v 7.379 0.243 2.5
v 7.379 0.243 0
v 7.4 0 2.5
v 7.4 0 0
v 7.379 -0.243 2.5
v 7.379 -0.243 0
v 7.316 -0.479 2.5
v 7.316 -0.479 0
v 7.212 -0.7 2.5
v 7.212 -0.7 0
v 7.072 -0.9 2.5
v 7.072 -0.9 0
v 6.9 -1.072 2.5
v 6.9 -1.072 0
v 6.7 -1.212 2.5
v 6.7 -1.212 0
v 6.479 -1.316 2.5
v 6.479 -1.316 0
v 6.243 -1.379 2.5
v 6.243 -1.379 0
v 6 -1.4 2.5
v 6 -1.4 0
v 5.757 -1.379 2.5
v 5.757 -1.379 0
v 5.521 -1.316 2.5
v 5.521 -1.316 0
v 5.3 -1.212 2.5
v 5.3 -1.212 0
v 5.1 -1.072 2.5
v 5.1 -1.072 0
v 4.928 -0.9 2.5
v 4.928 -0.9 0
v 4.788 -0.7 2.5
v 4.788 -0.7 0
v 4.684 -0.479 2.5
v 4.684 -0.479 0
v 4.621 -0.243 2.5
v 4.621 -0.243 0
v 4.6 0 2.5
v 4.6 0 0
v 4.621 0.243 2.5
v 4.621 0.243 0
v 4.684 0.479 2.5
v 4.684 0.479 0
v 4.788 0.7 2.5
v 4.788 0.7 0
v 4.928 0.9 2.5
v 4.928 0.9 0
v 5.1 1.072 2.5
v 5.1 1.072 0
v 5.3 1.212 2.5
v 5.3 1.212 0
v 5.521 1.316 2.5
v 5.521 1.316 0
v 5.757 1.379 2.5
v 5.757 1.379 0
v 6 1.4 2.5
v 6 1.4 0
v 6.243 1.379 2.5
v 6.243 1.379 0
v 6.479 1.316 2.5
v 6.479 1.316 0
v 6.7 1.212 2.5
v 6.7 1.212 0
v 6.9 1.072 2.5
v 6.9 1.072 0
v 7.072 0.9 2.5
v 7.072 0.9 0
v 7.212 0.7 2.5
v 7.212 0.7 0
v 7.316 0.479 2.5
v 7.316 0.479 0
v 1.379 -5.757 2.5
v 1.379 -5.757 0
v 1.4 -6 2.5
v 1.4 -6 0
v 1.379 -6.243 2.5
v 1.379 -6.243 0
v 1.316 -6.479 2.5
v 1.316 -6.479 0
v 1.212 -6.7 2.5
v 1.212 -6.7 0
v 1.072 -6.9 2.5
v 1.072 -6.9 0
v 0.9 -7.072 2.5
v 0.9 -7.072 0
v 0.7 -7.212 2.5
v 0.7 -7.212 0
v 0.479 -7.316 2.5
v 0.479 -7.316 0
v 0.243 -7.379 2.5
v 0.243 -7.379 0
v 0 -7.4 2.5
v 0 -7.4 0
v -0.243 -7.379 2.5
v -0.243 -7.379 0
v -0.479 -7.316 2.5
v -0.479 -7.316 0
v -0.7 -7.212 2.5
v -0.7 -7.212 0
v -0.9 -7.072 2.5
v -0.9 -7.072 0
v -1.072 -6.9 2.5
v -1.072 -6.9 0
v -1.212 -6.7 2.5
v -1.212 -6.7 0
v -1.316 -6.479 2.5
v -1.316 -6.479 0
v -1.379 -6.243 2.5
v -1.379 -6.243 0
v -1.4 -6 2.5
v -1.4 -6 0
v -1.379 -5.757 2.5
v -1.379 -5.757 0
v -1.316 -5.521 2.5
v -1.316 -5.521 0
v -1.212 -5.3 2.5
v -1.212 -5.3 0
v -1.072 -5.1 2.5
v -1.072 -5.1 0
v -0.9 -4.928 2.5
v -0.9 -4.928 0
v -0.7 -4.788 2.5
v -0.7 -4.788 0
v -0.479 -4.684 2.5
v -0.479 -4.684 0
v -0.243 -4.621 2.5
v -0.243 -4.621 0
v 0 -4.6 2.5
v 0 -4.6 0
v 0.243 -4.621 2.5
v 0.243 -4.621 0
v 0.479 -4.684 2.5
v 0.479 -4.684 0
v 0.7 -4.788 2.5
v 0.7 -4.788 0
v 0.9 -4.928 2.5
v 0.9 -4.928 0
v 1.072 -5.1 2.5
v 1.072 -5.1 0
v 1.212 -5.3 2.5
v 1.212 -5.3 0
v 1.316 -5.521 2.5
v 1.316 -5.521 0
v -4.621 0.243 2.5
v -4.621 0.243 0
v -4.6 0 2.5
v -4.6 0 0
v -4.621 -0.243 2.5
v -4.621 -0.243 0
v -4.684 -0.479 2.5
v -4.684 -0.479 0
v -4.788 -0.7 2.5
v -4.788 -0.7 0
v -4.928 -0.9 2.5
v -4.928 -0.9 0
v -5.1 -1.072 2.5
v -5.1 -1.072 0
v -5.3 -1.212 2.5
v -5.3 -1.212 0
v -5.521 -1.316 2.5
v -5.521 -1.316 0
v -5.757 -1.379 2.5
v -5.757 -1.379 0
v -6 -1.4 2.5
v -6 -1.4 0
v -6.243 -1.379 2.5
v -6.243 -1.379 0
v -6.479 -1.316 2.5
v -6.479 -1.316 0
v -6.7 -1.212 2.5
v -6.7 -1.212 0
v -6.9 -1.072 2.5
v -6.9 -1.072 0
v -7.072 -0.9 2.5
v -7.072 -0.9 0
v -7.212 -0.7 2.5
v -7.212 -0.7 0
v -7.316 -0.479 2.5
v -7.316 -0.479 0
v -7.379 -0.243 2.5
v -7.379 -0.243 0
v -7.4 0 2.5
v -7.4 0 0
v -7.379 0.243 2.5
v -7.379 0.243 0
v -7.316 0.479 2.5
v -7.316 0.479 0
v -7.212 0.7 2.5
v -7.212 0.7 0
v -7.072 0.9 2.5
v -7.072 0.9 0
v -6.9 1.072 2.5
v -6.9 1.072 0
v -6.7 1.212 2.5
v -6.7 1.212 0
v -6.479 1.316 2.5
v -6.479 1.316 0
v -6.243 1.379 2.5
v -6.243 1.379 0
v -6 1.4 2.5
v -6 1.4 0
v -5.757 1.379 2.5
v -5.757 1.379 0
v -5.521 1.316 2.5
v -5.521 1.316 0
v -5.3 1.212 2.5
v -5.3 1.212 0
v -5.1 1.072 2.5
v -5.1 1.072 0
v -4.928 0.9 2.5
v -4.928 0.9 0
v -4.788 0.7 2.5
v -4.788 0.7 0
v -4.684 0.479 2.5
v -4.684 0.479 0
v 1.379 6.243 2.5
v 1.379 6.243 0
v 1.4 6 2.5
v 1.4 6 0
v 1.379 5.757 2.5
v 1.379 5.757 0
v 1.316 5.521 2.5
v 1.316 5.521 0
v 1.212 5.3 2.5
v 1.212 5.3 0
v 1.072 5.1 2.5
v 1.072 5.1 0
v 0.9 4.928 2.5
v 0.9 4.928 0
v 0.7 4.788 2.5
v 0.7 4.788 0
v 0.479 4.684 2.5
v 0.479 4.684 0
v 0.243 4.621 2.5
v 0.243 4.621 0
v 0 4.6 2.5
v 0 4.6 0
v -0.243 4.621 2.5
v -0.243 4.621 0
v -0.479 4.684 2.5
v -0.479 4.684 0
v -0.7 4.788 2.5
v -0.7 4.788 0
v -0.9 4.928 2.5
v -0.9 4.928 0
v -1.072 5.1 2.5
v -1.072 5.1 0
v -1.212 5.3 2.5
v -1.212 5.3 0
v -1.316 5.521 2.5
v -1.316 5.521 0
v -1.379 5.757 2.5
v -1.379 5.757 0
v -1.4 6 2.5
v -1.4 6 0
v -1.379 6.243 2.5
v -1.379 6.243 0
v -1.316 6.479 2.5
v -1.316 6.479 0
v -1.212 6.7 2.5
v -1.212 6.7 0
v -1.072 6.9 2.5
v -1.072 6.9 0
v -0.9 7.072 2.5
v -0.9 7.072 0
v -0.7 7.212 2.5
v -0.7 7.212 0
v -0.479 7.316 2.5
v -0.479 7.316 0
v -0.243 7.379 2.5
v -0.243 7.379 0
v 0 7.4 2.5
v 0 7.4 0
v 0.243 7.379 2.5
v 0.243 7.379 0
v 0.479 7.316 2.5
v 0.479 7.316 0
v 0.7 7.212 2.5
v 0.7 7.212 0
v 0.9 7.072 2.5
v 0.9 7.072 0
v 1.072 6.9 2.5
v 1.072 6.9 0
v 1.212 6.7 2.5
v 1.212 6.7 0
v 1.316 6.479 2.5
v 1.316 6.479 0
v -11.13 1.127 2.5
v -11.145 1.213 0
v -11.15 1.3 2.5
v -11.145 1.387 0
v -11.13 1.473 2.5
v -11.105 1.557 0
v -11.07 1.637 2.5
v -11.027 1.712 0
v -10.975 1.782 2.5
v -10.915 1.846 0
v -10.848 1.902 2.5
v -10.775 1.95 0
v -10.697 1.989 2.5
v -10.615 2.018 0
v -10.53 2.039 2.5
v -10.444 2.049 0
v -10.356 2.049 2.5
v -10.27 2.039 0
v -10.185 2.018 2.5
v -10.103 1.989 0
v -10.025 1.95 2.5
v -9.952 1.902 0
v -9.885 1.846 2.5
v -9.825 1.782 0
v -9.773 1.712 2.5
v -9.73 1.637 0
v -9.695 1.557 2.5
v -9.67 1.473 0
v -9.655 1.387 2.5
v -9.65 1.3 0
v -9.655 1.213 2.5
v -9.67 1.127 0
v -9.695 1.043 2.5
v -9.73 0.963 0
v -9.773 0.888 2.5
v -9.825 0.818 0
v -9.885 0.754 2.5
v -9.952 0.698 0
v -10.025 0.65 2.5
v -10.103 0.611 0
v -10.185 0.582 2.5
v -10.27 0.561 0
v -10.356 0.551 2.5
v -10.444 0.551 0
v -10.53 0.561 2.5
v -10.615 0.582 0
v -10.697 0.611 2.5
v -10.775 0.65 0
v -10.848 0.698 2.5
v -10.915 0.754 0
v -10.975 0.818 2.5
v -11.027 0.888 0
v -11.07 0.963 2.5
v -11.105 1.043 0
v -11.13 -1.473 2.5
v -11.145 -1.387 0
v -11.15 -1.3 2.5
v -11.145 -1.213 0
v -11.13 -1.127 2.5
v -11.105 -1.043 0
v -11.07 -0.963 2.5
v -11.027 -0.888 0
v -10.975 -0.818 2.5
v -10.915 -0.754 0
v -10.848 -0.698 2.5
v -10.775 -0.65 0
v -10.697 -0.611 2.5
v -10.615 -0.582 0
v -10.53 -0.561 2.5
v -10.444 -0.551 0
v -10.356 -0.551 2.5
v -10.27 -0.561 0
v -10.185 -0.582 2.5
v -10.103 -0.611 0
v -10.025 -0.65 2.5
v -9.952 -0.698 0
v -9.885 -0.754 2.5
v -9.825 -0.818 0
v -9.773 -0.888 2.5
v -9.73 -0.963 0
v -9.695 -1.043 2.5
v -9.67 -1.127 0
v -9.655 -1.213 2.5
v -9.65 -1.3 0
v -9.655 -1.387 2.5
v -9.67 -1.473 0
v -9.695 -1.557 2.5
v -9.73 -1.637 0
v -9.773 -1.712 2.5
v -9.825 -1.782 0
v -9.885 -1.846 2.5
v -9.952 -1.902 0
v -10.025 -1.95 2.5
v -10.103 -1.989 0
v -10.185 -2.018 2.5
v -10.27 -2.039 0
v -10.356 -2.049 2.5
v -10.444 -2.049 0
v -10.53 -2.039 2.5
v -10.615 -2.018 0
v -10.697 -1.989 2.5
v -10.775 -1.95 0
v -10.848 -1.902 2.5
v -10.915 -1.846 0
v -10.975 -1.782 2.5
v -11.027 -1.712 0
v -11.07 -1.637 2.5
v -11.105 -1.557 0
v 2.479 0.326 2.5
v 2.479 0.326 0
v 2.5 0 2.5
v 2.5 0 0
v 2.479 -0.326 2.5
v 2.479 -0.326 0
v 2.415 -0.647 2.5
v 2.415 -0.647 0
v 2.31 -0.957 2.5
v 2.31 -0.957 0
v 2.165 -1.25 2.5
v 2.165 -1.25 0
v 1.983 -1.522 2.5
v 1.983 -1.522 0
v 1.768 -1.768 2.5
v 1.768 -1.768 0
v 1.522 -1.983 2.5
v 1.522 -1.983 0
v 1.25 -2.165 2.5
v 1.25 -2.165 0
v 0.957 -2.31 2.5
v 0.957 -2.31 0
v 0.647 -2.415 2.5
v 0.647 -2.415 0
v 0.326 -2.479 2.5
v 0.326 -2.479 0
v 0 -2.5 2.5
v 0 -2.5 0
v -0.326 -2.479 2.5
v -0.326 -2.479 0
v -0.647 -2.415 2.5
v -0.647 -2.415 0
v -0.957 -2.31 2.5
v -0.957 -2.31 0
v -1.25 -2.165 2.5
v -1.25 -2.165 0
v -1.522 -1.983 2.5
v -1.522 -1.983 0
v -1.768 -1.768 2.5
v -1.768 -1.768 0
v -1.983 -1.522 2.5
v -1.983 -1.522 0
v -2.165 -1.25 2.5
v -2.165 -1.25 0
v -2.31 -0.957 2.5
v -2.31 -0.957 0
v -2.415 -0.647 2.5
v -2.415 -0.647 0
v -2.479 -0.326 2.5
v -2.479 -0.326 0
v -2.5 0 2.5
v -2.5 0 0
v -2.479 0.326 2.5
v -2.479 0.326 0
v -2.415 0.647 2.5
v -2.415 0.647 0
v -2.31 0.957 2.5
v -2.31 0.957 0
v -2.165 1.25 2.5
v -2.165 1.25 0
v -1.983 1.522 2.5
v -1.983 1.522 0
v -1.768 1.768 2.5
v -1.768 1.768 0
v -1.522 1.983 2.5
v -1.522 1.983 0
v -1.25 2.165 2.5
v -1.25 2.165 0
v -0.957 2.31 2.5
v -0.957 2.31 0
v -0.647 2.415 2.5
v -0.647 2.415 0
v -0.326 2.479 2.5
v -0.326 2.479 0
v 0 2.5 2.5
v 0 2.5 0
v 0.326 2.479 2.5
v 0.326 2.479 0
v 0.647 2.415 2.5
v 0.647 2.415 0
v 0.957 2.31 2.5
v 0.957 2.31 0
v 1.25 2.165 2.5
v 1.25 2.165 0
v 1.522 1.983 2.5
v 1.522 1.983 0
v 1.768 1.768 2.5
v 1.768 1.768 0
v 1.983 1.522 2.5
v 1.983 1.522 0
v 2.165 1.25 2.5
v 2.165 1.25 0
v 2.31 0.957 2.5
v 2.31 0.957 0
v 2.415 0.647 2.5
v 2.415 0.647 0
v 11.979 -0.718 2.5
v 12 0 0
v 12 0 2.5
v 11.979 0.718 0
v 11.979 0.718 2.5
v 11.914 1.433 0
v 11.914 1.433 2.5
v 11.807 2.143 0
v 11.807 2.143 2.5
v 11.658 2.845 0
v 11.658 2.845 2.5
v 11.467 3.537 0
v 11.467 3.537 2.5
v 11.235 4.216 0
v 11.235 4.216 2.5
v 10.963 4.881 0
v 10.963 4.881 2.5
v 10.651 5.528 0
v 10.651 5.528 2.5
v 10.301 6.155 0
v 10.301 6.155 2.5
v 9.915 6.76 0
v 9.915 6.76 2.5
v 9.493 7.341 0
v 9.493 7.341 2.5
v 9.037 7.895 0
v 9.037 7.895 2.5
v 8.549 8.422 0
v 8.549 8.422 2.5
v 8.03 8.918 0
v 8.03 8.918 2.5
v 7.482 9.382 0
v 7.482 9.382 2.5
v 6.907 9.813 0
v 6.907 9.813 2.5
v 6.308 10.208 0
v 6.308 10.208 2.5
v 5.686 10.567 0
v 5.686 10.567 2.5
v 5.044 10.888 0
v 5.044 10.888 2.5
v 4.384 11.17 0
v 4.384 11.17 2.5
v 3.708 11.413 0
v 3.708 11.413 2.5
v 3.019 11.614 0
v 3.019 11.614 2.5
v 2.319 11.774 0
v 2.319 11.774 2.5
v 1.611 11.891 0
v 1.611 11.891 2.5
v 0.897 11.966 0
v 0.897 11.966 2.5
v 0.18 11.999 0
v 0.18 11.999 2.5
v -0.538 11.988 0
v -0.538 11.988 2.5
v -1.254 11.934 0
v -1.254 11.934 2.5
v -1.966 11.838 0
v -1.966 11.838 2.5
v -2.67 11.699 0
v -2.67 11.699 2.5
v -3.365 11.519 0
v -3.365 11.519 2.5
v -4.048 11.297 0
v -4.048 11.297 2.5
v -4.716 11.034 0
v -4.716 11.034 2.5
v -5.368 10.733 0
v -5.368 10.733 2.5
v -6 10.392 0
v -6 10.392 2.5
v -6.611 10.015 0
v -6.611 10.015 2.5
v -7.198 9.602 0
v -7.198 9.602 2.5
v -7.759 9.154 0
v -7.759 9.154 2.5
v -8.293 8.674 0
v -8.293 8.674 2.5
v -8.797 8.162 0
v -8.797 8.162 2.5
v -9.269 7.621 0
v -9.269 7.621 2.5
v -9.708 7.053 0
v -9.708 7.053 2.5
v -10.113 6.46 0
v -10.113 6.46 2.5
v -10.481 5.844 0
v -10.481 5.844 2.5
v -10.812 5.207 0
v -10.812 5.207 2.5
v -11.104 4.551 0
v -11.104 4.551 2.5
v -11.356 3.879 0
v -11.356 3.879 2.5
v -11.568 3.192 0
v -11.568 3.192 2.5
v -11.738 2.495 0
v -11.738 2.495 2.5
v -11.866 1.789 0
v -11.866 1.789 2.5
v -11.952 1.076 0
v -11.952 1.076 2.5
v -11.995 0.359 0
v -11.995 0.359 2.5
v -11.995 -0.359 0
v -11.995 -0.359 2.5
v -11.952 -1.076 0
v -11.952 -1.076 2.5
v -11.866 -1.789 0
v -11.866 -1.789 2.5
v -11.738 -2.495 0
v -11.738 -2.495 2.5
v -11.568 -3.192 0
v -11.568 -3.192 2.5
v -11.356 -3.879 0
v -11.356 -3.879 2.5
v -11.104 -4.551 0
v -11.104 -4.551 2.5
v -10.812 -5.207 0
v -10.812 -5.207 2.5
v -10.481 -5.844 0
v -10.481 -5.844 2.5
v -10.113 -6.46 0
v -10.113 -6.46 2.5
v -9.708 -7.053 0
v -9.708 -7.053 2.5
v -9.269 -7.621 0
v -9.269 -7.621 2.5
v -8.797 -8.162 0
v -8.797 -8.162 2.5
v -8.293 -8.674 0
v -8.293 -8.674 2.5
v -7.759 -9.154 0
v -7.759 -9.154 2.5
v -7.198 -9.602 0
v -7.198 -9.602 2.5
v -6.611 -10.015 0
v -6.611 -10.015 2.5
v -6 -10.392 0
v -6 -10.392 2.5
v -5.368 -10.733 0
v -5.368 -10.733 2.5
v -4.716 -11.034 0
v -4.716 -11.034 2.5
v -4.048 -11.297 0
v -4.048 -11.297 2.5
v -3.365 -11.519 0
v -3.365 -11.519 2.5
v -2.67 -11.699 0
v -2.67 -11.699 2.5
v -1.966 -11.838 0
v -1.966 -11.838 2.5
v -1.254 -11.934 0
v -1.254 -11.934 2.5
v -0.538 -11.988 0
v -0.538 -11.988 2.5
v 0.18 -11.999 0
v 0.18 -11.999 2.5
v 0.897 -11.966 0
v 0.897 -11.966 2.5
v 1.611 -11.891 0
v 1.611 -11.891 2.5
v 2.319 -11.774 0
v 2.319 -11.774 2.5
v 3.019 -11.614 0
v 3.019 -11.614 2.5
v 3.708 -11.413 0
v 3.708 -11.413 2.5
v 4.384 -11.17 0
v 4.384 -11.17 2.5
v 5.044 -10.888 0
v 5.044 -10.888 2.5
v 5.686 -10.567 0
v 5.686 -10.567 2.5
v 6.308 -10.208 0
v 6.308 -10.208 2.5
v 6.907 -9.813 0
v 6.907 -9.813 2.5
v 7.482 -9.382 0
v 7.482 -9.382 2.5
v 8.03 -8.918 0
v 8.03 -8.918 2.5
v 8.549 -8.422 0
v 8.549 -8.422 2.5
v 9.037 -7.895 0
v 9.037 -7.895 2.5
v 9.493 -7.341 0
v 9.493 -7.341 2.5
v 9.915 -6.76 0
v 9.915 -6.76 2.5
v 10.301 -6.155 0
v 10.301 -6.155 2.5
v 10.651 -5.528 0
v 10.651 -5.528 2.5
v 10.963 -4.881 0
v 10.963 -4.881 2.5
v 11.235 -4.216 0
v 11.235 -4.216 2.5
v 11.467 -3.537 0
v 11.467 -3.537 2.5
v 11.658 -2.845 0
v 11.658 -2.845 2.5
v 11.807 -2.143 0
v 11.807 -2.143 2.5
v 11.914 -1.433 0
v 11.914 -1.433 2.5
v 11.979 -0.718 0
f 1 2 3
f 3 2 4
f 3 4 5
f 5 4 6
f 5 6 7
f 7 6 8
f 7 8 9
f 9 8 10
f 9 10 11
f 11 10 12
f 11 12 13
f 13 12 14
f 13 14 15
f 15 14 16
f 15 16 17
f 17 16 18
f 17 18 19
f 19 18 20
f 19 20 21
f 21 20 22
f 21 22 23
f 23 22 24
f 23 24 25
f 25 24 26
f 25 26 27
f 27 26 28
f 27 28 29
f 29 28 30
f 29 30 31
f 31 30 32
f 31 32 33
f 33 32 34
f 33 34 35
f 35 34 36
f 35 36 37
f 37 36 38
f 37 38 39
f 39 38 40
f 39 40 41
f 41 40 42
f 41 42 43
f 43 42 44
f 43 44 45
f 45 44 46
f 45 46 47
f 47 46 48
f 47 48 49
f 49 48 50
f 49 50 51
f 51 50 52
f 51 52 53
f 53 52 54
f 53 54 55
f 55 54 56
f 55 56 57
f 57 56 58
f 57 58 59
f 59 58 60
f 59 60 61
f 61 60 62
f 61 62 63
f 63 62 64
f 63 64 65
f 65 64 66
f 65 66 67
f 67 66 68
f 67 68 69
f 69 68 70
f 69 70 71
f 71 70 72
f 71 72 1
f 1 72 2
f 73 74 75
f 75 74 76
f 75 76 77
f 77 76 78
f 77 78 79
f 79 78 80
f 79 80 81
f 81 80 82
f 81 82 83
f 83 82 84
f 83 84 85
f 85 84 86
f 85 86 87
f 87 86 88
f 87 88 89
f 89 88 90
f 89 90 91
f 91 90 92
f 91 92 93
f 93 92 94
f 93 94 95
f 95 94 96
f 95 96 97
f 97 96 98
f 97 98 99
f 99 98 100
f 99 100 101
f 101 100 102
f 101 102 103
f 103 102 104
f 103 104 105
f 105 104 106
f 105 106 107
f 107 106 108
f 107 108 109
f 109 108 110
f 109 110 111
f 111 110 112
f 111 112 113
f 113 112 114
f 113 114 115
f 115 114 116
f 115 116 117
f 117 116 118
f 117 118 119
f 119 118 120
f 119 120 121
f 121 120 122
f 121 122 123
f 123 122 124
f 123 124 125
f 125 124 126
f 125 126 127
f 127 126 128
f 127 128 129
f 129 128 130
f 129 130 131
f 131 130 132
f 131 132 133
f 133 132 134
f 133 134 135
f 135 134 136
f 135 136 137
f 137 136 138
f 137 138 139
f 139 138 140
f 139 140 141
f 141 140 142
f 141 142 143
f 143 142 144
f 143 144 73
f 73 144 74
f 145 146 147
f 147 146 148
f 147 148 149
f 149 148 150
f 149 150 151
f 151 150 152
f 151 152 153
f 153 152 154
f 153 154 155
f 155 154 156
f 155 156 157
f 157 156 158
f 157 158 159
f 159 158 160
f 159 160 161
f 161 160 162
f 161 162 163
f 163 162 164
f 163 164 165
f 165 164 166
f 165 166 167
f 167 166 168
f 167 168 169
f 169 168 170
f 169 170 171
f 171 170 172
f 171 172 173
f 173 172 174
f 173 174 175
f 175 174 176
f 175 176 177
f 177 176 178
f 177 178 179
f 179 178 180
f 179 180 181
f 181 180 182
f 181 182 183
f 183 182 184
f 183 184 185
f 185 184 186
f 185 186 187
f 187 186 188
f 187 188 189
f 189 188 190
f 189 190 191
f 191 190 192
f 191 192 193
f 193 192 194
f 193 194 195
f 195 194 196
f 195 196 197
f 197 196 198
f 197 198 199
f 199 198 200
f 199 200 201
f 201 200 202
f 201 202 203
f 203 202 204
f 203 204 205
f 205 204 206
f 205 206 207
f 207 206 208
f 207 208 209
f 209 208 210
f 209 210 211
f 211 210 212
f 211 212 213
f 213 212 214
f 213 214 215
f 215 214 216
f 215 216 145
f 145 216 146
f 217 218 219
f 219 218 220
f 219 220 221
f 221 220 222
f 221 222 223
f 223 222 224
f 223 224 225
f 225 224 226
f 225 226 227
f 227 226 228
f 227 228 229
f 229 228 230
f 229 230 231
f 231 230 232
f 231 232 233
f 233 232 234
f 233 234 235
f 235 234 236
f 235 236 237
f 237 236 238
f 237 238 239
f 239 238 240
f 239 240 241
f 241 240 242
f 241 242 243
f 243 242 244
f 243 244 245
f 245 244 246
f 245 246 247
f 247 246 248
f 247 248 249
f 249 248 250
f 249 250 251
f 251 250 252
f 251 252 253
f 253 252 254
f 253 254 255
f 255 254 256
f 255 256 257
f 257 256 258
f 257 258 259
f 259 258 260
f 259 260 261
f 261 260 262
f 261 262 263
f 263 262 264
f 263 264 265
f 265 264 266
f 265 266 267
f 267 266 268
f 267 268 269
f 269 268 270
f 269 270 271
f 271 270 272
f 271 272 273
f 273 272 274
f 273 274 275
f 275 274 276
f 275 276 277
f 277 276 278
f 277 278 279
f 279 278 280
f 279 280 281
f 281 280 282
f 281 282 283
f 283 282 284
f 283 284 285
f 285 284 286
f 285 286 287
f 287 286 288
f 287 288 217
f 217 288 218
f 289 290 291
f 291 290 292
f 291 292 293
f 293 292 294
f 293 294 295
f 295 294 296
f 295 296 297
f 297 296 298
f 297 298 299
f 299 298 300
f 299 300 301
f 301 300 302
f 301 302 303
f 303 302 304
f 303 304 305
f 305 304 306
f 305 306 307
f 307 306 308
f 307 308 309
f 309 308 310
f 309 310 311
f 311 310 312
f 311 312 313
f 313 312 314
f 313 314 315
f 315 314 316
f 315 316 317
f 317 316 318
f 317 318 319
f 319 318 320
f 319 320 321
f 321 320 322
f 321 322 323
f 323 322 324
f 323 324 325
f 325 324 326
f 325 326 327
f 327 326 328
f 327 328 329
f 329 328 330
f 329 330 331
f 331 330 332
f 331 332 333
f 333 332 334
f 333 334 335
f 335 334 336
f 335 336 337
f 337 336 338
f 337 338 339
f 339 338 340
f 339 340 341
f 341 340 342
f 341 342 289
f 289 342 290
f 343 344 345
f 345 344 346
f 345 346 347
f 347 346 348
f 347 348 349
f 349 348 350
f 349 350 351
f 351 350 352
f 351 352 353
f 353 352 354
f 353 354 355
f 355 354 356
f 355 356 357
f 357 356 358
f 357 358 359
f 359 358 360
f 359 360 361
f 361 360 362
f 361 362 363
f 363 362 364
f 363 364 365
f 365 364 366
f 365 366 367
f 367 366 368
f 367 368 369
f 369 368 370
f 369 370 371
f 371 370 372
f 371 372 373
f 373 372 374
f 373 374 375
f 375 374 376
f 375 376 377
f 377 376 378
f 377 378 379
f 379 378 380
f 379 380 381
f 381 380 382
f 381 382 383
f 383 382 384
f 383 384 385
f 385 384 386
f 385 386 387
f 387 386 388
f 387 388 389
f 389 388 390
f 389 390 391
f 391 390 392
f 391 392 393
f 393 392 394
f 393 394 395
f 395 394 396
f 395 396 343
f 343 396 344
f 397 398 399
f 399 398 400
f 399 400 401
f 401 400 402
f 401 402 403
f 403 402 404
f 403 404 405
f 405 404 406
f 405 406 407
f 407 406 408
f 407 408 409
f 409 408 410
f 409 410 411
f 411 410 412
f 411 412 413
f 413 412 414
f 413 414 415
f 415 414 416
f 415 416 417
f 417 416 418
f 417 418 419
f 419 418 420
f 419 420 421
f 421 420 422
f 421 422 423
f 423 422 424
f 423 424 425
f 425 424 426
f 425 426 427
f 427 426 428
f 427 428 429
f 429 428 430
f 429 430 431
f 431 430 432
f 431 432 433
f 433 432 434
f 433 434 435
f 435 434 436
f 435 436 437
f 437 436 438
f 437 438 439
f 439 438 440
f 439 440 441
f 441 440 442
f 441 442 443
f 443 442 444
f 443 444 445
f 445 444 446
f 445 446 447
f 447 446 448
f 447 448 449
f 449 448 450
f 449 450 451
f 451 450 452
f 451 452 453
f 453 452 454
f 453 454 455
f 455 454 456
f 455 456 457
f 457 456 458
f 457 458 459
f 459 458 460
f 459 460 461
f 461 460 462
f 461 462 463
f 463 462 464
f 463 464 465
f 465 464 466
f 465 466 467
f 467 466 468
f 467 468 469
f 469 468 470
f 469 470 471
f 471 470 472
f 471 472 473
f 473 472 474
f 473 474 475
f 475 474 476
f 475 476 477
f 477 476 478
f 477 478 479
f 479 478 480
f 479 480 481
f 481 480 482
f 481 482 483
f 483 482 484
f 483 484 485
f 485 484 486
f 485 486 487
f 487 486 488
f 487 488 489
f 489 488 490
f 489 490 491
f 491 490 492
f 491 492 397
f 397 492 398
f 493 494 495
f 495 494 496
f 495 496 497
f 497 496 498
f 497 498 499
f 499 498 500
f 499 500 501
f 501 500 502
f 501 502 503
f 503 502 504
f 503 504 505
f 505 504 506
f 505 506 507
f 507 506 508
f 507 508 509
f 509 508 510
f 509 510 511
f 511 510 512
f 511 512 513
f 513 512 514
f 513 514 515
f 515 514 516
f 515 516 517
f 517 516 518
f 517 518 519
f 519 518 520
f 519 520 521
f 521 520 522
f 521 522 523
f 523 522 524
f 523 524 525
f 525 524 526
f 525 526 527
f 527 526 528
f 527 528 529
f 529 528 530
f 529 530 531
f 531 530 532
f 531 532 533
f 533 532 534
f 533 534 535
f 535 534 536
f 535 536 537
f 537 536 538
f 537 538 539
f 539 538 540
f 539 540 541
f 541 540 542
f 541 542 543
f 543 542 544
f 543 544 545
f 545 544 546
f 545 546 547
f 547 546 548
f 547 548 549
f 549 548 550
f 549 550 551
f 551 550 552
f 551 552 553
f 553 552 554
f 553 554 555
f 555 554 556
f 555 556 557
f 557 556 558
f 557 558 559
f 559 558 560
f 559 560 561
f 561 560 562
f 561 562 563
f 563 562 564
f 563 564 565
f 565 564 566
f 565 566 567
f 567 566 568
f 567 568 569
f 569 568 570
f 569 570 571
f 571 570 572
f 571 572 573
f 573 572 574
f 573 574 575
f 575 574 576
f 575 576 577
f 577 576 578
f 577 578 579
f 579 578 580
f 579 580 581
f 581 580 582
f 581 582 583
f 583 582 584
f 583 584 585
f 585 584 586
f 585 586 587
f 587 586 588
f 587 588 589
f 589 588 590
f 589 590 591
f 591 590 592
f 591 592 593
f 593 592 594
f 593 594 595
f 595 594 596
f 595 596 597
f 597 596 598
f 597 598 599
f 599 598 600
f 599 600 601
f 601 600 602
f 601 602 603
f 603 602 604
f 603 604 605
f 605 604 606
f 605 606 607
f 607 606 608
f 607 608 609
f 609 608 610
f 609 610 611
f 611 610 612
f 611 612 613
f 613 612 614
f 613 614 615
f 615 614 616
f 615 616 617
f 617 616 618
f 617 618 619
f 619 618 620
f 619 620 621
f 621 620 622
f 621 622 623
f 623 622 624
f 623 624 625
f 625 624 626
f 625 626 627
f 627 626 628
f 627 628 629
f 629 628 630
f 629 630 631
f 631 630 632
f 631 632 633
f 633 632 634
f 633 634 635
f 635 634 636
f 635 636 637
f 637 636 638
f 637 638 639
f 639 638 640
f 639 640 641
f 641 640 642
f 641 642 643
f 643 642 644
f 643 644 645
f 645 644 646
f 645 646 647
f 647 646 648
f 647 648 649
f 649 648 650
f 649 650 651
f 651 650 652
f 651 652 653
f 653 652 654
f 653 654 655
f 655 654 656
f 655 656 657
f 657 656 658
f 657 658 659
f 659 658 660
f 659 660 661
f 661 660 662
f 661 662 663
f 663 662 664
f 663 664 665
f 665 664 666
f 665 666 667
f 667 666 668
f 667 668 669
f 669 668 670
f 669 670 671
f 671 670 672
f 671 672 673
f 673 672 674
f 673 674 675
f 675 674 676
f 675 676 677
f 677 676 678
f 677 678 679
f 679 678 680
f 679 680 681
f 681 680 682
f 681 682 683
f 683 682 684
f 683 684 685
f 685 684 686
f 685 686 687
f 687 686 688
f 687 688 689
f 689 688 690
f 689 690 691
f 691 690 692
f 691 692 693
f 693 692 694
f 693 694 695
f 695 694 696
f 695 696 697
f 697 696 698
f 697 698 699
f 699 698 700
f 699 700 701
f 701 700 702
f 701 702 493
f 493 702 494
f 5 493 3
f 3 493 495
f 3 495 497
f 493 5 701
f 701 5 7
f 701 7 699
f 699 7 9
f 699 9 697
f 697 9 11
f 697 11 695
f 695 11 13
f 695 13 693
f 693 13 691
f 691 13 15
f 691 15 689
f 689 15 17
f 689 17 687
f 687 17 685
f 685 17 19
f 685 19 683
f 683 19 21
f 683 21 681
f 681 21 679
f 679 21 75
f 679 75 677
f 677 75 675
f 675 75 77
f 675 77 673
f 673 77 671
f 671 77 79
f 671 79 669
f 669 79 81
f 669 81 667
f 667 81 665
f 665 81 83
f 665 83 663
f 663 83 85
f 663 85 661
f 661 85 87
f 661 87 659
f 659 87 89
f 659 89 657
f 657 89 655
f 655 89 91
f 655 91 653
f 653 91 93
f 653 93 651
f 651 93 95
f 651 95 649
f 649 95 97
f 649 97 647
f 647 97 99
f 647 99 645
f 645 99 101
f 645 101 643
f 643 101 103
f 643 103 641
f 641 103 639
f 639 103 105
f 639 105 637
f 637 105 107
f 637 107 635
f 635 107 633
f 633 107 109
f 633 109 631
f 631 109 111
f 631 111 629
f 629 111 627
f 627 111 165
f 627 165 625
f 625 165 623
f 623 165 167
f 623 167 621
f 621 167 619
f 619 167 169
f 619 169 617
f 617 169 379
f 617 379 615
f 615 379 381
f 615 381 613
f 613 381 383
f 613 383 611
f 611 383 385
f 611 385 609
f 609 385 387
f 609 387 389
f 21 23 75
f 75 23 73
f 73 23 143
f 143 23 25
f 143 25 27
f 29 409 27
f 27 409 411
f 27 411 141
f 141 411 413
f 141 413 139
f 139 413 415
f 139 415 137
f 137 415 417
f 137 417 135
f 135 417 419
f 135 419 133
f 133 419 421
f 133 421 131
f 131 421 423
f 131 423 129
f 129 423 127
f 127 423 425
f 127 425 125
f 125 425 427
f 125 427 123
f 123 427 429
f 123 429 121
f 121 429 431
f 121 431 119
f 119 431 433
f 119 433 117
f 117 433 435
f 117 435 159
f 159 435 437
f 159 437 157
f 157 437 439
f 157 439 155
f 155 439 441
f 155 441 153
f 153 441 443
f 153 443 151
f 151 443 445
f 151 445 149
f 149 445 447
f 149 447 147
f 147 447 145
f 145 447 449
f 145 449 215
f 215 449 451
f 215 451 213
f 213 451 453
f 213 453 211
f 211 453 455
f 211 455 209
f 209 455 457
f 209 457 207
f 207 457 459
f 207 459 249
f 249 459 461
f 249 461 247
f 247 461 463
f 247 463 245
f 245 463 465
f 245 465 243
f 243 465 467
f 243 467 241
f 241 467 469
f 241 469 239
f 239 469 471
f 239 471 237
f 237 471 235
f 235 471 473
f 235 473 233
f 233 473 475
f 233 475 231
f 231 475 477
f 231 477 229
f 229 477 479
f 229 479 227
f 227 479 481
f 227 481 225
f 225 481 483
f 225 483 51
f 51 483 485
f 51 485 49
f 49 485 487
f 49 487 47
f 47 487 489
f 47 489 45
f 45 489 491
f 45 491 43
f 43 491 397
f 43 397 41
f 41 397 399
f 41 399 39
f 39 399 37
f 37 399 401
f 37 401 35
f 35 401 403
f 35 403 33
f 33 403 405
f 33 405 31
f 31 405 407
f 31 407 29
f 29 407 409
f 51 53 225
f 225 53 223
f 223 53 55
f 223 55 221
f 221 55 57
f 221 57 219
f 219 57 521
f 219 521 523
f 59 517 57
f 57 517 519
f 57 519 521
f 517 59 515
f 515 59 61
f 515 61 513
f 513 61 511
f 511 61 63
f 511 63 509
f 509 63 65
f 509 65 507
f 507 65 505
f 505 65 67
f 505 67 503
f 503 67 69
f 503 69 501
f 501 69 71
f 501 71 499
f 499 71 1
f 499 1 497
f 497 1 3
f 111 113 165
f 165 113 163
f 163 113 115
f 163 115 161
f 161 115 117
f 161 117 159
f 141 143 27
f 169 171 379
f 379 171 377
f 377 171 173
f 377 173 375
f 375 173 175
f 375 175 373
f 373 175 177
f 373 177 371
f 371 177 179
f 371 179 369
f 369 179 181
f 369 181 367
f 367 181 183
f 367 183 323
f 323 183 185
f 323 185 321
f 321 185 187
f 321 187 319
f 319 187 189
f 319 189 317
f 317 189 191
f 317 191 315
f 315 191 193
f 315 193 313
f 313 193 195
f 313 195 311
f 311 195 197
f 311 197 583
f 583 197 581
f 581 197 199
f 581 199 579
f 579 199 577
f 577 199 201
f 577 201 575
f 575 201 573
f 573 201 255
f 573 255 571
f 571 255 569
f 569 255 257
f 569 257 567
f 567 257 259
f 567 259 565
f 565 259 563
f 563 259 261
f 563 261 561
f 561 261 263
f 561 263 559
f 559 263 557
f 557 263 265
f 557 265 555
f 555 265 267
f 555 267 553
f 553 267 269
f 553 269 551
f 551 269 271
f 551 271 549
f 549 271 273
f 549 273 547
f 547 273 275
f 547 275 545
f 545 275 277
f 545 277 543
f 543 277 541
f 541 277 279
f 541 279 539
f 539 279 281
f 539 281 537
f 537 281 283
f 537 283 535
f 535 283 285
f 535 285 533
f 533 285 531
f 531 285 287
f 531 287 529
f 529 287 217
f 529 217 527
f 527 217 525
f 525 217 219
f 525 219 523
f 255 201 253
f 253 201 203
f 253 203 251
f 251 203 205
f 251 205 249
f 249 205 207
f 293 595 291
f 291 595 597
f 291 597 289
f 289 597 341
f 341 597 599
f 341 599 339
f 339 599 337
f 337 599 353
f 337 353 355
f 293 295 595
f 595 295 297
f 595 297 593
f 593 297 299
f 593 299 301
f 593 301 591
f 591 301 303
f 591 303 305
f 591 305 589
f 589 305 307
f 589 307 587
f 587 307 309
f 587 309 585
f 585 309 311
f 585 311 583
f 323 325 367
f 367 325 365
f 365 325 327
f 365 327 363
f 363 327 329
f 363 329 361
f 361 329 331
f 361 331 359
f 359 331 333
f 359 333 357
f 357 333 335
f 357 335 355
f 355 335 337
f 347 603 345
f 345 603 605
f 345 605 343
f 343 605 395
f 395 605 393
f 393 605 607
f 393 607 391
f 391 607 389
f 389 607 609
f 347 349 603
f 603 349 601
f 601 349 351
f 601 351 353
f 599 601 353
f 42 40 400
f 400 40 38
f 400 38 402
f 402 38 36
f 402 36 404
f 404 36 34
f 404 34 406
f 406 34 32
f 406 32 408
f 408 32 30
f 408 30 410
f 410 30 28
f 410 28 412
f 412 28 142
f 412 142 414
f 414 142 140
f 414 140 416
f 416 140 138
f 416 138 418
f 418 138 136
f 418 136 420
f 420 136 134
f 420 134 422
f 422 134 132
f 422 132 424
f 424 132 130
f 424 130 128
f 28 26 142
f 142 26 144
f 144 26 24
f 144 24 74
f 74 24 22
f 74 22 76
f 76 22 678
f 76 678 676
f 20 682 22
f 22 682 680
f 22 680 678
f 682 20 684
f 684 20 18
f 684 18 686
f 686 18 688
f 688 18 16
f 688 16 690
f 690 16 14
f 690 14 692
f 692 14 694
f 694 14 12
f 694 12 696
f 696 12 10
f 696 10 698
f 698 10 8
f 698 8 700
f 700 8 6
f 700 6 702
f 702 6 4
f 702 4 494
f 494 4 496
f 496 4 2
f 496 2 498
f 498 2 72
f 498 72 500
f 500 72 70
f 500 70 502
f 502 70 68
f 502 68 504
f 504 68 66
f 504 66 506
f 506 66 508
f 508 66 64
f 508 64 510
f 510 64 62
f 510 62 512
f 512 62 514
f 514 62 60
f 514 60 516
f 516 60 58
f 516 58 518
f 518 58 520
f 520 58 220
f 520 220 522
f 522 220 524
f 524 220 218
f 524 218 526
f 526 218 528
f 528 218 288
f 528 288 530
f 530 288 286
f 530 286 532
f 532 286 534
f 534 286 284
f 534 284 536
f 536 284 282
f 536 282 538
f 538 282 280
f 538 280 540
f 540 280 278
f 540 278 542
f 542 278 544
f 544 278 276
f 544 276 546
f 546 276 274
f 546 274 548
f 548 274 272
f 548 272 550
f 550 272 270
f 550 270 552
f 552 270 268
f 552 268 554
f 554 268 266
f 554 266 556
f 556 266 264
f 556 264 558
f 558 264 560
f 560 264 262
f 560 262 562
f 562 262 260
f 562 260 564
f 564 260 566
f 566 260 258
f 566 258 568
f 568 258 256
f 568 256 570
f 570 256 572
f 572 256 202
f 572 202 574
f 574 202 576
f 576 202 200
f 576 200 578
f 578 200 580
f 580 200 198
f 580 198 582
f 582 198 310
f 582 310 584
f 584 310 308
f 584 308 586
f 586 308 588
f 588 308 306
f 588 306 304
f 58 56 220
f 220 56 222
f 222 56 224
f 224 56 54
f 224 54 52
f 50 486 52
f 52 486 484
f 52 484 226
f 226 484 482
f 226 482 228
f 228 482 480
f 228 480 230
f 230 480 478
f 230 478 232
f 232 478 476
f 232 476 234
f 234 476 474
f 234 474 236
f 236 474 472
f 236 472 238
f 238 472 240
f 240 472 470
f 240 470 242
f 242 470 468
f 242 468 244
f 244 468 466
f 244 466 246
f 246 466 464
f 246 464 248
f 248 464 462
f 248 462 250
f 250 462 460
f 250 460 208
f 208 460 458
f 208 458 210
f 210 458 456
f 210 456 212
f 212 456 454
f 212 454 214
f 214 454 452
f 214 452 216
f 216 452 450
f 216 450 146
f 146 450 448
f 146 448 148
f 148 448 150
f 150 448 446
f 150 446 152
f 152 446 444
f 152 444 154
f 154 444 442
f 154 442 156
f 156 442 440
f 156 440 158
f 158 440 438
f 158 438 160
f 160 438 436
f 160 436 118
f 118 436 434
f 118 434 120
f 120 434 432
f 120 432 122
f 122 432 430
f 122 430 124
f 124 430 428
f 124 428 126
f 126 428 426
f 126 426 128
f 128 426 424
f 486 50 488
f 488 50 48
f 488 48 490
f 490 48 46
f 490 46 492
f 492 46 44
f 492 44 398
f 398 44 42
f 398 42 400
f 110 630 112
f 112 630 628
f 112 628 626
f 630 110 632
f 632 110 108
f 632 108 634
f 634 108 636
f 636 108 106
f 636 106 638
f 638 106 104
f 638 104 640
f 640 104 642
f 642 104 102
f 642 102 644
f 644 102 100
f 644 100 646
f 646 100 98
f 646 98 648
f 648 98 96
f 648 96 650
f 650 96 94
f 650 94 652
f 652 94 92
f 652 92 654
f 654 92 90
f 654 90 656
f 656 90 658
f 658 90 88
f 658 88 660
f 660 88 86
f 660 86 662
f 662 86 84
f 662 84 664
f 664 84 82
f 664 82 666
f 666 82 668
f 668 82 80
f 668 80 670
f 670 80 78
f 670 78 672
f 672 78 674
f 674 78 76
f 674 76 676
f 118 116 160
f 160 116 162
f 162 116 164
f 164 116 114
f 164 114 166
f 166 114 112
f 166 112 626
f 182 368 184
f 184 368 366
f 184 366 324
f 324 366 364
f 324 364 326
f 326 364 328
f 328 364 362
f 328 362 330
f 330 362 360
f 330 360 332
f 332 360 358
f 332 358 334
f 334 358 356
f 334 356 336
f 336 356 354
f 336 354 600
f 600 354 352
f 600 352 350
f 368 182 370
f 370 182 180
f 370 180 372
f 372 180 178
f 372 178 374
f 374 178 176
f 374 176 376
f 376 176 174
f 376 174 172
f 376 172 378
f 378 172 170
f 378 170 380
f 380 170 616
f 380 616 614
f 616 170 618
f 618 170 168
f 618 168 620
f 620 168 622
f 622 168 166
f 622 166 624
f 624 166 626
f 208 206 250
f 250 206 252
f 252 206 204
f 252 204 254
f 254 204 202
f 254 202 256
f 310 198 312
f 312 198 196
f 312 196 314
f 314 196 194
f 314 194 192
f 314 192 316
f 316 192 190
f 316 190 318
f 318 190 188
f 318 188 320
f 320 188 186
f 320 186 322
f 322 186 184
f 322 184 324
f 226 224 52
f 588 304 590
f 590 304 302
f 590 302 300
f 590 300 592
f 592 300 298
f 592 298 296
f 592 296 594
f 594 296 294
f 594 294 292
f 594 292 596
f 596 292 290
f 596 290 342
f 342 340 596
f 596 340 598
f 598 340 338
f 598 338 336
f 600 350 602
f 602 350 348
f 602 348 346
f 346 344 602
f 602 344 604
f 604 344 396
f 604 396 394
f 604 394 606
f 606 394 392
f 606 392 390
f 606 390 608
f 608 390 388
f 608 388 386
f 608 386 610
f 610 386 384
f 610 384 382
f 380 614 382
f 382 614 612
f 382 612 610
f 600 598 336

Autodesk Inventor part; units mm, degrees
ref_plane "YZ Plane" through (0, 0, 0) normal (1, 0, 0) x (0, 1, 0)
ref_plane "XZ Plane" through (0, 0, 0) normal (0, 1, 0) x (-1, 0, 0)
ref_plane "XY Plane" through (0, 0, 0) normal (0, 0, 1) x (1, 0, 0)
sketch "Skizze1" plane through (0, 0, 0) normal (0, 0, 1) x (1, 0, 0)
  circle A0 centre (0, 0) radius 12
  circle A1 centre (0, 0) radius 2.5
  dimension "d0" = 24
  dimension "d1" = 5
extrude "Extrusion1" add sketch "Skizze1" along normal blind 2.5
sketch "Skizze2" plane through (0, 0, 0) normal (0, 0, 1) x (1, 0, 0)
  circle A0 centre (-10.4, -1.3) radius 0.75
  circle A1 centre (-10.4, 1.3) radius 0.75
  line L0 (-13.98, 0) -> (2.33, 0) projected
  line L1 (0, 2.87) -> (0, -2.87) projected
  point P0 (0, 0)
  dimension "d4" = 1.5
  dimension "d5" = 1.5
  dimension "d6" = 1.3
  dimension "d7" = 1.3
  dimension "d8" = 10.4
  dimension "d9" = 10.4
extrude "Extrusion2" cut sketch "Skizze2" along normal blind 6.75
sketch "Skizze3" plane through (0, 0, 0) normal (0, 0, -1) x (-1, 0, 0)
  circle A0 centre (0, 6) radius 1.4
  line L0 (-16.8, 0) -> (16.8, 0) projected
  line L1 (0, -16.8) -> (0, 16.8) projected
  circle A1 centre (-6, 0) radius 1.4
  circle A2 centre (0, -6) radius 1.4
  circle A3 centre (6, 0) radius 1.4
  point P0 (0, 0)
  point P1 (7.4, 0)
  point P2 (4.6, 0)
  point P3 (-4.6, 0)
  point P4 (-7.4, 0)
  point P5 (0, -4.6)
  point P6 (0, -7.4)
  point P7 (0, 4.6)
  point P8 (0, 7.4)
  dimension "d12" = 2.8
  dimension "d13" = 6
  dimension "d14" = 0
  dimension "d20" = 360
extrude "Extrusion3" cut sketch "Skizze3" against normal blind 6.75
properties part number "_3D-Druck"
